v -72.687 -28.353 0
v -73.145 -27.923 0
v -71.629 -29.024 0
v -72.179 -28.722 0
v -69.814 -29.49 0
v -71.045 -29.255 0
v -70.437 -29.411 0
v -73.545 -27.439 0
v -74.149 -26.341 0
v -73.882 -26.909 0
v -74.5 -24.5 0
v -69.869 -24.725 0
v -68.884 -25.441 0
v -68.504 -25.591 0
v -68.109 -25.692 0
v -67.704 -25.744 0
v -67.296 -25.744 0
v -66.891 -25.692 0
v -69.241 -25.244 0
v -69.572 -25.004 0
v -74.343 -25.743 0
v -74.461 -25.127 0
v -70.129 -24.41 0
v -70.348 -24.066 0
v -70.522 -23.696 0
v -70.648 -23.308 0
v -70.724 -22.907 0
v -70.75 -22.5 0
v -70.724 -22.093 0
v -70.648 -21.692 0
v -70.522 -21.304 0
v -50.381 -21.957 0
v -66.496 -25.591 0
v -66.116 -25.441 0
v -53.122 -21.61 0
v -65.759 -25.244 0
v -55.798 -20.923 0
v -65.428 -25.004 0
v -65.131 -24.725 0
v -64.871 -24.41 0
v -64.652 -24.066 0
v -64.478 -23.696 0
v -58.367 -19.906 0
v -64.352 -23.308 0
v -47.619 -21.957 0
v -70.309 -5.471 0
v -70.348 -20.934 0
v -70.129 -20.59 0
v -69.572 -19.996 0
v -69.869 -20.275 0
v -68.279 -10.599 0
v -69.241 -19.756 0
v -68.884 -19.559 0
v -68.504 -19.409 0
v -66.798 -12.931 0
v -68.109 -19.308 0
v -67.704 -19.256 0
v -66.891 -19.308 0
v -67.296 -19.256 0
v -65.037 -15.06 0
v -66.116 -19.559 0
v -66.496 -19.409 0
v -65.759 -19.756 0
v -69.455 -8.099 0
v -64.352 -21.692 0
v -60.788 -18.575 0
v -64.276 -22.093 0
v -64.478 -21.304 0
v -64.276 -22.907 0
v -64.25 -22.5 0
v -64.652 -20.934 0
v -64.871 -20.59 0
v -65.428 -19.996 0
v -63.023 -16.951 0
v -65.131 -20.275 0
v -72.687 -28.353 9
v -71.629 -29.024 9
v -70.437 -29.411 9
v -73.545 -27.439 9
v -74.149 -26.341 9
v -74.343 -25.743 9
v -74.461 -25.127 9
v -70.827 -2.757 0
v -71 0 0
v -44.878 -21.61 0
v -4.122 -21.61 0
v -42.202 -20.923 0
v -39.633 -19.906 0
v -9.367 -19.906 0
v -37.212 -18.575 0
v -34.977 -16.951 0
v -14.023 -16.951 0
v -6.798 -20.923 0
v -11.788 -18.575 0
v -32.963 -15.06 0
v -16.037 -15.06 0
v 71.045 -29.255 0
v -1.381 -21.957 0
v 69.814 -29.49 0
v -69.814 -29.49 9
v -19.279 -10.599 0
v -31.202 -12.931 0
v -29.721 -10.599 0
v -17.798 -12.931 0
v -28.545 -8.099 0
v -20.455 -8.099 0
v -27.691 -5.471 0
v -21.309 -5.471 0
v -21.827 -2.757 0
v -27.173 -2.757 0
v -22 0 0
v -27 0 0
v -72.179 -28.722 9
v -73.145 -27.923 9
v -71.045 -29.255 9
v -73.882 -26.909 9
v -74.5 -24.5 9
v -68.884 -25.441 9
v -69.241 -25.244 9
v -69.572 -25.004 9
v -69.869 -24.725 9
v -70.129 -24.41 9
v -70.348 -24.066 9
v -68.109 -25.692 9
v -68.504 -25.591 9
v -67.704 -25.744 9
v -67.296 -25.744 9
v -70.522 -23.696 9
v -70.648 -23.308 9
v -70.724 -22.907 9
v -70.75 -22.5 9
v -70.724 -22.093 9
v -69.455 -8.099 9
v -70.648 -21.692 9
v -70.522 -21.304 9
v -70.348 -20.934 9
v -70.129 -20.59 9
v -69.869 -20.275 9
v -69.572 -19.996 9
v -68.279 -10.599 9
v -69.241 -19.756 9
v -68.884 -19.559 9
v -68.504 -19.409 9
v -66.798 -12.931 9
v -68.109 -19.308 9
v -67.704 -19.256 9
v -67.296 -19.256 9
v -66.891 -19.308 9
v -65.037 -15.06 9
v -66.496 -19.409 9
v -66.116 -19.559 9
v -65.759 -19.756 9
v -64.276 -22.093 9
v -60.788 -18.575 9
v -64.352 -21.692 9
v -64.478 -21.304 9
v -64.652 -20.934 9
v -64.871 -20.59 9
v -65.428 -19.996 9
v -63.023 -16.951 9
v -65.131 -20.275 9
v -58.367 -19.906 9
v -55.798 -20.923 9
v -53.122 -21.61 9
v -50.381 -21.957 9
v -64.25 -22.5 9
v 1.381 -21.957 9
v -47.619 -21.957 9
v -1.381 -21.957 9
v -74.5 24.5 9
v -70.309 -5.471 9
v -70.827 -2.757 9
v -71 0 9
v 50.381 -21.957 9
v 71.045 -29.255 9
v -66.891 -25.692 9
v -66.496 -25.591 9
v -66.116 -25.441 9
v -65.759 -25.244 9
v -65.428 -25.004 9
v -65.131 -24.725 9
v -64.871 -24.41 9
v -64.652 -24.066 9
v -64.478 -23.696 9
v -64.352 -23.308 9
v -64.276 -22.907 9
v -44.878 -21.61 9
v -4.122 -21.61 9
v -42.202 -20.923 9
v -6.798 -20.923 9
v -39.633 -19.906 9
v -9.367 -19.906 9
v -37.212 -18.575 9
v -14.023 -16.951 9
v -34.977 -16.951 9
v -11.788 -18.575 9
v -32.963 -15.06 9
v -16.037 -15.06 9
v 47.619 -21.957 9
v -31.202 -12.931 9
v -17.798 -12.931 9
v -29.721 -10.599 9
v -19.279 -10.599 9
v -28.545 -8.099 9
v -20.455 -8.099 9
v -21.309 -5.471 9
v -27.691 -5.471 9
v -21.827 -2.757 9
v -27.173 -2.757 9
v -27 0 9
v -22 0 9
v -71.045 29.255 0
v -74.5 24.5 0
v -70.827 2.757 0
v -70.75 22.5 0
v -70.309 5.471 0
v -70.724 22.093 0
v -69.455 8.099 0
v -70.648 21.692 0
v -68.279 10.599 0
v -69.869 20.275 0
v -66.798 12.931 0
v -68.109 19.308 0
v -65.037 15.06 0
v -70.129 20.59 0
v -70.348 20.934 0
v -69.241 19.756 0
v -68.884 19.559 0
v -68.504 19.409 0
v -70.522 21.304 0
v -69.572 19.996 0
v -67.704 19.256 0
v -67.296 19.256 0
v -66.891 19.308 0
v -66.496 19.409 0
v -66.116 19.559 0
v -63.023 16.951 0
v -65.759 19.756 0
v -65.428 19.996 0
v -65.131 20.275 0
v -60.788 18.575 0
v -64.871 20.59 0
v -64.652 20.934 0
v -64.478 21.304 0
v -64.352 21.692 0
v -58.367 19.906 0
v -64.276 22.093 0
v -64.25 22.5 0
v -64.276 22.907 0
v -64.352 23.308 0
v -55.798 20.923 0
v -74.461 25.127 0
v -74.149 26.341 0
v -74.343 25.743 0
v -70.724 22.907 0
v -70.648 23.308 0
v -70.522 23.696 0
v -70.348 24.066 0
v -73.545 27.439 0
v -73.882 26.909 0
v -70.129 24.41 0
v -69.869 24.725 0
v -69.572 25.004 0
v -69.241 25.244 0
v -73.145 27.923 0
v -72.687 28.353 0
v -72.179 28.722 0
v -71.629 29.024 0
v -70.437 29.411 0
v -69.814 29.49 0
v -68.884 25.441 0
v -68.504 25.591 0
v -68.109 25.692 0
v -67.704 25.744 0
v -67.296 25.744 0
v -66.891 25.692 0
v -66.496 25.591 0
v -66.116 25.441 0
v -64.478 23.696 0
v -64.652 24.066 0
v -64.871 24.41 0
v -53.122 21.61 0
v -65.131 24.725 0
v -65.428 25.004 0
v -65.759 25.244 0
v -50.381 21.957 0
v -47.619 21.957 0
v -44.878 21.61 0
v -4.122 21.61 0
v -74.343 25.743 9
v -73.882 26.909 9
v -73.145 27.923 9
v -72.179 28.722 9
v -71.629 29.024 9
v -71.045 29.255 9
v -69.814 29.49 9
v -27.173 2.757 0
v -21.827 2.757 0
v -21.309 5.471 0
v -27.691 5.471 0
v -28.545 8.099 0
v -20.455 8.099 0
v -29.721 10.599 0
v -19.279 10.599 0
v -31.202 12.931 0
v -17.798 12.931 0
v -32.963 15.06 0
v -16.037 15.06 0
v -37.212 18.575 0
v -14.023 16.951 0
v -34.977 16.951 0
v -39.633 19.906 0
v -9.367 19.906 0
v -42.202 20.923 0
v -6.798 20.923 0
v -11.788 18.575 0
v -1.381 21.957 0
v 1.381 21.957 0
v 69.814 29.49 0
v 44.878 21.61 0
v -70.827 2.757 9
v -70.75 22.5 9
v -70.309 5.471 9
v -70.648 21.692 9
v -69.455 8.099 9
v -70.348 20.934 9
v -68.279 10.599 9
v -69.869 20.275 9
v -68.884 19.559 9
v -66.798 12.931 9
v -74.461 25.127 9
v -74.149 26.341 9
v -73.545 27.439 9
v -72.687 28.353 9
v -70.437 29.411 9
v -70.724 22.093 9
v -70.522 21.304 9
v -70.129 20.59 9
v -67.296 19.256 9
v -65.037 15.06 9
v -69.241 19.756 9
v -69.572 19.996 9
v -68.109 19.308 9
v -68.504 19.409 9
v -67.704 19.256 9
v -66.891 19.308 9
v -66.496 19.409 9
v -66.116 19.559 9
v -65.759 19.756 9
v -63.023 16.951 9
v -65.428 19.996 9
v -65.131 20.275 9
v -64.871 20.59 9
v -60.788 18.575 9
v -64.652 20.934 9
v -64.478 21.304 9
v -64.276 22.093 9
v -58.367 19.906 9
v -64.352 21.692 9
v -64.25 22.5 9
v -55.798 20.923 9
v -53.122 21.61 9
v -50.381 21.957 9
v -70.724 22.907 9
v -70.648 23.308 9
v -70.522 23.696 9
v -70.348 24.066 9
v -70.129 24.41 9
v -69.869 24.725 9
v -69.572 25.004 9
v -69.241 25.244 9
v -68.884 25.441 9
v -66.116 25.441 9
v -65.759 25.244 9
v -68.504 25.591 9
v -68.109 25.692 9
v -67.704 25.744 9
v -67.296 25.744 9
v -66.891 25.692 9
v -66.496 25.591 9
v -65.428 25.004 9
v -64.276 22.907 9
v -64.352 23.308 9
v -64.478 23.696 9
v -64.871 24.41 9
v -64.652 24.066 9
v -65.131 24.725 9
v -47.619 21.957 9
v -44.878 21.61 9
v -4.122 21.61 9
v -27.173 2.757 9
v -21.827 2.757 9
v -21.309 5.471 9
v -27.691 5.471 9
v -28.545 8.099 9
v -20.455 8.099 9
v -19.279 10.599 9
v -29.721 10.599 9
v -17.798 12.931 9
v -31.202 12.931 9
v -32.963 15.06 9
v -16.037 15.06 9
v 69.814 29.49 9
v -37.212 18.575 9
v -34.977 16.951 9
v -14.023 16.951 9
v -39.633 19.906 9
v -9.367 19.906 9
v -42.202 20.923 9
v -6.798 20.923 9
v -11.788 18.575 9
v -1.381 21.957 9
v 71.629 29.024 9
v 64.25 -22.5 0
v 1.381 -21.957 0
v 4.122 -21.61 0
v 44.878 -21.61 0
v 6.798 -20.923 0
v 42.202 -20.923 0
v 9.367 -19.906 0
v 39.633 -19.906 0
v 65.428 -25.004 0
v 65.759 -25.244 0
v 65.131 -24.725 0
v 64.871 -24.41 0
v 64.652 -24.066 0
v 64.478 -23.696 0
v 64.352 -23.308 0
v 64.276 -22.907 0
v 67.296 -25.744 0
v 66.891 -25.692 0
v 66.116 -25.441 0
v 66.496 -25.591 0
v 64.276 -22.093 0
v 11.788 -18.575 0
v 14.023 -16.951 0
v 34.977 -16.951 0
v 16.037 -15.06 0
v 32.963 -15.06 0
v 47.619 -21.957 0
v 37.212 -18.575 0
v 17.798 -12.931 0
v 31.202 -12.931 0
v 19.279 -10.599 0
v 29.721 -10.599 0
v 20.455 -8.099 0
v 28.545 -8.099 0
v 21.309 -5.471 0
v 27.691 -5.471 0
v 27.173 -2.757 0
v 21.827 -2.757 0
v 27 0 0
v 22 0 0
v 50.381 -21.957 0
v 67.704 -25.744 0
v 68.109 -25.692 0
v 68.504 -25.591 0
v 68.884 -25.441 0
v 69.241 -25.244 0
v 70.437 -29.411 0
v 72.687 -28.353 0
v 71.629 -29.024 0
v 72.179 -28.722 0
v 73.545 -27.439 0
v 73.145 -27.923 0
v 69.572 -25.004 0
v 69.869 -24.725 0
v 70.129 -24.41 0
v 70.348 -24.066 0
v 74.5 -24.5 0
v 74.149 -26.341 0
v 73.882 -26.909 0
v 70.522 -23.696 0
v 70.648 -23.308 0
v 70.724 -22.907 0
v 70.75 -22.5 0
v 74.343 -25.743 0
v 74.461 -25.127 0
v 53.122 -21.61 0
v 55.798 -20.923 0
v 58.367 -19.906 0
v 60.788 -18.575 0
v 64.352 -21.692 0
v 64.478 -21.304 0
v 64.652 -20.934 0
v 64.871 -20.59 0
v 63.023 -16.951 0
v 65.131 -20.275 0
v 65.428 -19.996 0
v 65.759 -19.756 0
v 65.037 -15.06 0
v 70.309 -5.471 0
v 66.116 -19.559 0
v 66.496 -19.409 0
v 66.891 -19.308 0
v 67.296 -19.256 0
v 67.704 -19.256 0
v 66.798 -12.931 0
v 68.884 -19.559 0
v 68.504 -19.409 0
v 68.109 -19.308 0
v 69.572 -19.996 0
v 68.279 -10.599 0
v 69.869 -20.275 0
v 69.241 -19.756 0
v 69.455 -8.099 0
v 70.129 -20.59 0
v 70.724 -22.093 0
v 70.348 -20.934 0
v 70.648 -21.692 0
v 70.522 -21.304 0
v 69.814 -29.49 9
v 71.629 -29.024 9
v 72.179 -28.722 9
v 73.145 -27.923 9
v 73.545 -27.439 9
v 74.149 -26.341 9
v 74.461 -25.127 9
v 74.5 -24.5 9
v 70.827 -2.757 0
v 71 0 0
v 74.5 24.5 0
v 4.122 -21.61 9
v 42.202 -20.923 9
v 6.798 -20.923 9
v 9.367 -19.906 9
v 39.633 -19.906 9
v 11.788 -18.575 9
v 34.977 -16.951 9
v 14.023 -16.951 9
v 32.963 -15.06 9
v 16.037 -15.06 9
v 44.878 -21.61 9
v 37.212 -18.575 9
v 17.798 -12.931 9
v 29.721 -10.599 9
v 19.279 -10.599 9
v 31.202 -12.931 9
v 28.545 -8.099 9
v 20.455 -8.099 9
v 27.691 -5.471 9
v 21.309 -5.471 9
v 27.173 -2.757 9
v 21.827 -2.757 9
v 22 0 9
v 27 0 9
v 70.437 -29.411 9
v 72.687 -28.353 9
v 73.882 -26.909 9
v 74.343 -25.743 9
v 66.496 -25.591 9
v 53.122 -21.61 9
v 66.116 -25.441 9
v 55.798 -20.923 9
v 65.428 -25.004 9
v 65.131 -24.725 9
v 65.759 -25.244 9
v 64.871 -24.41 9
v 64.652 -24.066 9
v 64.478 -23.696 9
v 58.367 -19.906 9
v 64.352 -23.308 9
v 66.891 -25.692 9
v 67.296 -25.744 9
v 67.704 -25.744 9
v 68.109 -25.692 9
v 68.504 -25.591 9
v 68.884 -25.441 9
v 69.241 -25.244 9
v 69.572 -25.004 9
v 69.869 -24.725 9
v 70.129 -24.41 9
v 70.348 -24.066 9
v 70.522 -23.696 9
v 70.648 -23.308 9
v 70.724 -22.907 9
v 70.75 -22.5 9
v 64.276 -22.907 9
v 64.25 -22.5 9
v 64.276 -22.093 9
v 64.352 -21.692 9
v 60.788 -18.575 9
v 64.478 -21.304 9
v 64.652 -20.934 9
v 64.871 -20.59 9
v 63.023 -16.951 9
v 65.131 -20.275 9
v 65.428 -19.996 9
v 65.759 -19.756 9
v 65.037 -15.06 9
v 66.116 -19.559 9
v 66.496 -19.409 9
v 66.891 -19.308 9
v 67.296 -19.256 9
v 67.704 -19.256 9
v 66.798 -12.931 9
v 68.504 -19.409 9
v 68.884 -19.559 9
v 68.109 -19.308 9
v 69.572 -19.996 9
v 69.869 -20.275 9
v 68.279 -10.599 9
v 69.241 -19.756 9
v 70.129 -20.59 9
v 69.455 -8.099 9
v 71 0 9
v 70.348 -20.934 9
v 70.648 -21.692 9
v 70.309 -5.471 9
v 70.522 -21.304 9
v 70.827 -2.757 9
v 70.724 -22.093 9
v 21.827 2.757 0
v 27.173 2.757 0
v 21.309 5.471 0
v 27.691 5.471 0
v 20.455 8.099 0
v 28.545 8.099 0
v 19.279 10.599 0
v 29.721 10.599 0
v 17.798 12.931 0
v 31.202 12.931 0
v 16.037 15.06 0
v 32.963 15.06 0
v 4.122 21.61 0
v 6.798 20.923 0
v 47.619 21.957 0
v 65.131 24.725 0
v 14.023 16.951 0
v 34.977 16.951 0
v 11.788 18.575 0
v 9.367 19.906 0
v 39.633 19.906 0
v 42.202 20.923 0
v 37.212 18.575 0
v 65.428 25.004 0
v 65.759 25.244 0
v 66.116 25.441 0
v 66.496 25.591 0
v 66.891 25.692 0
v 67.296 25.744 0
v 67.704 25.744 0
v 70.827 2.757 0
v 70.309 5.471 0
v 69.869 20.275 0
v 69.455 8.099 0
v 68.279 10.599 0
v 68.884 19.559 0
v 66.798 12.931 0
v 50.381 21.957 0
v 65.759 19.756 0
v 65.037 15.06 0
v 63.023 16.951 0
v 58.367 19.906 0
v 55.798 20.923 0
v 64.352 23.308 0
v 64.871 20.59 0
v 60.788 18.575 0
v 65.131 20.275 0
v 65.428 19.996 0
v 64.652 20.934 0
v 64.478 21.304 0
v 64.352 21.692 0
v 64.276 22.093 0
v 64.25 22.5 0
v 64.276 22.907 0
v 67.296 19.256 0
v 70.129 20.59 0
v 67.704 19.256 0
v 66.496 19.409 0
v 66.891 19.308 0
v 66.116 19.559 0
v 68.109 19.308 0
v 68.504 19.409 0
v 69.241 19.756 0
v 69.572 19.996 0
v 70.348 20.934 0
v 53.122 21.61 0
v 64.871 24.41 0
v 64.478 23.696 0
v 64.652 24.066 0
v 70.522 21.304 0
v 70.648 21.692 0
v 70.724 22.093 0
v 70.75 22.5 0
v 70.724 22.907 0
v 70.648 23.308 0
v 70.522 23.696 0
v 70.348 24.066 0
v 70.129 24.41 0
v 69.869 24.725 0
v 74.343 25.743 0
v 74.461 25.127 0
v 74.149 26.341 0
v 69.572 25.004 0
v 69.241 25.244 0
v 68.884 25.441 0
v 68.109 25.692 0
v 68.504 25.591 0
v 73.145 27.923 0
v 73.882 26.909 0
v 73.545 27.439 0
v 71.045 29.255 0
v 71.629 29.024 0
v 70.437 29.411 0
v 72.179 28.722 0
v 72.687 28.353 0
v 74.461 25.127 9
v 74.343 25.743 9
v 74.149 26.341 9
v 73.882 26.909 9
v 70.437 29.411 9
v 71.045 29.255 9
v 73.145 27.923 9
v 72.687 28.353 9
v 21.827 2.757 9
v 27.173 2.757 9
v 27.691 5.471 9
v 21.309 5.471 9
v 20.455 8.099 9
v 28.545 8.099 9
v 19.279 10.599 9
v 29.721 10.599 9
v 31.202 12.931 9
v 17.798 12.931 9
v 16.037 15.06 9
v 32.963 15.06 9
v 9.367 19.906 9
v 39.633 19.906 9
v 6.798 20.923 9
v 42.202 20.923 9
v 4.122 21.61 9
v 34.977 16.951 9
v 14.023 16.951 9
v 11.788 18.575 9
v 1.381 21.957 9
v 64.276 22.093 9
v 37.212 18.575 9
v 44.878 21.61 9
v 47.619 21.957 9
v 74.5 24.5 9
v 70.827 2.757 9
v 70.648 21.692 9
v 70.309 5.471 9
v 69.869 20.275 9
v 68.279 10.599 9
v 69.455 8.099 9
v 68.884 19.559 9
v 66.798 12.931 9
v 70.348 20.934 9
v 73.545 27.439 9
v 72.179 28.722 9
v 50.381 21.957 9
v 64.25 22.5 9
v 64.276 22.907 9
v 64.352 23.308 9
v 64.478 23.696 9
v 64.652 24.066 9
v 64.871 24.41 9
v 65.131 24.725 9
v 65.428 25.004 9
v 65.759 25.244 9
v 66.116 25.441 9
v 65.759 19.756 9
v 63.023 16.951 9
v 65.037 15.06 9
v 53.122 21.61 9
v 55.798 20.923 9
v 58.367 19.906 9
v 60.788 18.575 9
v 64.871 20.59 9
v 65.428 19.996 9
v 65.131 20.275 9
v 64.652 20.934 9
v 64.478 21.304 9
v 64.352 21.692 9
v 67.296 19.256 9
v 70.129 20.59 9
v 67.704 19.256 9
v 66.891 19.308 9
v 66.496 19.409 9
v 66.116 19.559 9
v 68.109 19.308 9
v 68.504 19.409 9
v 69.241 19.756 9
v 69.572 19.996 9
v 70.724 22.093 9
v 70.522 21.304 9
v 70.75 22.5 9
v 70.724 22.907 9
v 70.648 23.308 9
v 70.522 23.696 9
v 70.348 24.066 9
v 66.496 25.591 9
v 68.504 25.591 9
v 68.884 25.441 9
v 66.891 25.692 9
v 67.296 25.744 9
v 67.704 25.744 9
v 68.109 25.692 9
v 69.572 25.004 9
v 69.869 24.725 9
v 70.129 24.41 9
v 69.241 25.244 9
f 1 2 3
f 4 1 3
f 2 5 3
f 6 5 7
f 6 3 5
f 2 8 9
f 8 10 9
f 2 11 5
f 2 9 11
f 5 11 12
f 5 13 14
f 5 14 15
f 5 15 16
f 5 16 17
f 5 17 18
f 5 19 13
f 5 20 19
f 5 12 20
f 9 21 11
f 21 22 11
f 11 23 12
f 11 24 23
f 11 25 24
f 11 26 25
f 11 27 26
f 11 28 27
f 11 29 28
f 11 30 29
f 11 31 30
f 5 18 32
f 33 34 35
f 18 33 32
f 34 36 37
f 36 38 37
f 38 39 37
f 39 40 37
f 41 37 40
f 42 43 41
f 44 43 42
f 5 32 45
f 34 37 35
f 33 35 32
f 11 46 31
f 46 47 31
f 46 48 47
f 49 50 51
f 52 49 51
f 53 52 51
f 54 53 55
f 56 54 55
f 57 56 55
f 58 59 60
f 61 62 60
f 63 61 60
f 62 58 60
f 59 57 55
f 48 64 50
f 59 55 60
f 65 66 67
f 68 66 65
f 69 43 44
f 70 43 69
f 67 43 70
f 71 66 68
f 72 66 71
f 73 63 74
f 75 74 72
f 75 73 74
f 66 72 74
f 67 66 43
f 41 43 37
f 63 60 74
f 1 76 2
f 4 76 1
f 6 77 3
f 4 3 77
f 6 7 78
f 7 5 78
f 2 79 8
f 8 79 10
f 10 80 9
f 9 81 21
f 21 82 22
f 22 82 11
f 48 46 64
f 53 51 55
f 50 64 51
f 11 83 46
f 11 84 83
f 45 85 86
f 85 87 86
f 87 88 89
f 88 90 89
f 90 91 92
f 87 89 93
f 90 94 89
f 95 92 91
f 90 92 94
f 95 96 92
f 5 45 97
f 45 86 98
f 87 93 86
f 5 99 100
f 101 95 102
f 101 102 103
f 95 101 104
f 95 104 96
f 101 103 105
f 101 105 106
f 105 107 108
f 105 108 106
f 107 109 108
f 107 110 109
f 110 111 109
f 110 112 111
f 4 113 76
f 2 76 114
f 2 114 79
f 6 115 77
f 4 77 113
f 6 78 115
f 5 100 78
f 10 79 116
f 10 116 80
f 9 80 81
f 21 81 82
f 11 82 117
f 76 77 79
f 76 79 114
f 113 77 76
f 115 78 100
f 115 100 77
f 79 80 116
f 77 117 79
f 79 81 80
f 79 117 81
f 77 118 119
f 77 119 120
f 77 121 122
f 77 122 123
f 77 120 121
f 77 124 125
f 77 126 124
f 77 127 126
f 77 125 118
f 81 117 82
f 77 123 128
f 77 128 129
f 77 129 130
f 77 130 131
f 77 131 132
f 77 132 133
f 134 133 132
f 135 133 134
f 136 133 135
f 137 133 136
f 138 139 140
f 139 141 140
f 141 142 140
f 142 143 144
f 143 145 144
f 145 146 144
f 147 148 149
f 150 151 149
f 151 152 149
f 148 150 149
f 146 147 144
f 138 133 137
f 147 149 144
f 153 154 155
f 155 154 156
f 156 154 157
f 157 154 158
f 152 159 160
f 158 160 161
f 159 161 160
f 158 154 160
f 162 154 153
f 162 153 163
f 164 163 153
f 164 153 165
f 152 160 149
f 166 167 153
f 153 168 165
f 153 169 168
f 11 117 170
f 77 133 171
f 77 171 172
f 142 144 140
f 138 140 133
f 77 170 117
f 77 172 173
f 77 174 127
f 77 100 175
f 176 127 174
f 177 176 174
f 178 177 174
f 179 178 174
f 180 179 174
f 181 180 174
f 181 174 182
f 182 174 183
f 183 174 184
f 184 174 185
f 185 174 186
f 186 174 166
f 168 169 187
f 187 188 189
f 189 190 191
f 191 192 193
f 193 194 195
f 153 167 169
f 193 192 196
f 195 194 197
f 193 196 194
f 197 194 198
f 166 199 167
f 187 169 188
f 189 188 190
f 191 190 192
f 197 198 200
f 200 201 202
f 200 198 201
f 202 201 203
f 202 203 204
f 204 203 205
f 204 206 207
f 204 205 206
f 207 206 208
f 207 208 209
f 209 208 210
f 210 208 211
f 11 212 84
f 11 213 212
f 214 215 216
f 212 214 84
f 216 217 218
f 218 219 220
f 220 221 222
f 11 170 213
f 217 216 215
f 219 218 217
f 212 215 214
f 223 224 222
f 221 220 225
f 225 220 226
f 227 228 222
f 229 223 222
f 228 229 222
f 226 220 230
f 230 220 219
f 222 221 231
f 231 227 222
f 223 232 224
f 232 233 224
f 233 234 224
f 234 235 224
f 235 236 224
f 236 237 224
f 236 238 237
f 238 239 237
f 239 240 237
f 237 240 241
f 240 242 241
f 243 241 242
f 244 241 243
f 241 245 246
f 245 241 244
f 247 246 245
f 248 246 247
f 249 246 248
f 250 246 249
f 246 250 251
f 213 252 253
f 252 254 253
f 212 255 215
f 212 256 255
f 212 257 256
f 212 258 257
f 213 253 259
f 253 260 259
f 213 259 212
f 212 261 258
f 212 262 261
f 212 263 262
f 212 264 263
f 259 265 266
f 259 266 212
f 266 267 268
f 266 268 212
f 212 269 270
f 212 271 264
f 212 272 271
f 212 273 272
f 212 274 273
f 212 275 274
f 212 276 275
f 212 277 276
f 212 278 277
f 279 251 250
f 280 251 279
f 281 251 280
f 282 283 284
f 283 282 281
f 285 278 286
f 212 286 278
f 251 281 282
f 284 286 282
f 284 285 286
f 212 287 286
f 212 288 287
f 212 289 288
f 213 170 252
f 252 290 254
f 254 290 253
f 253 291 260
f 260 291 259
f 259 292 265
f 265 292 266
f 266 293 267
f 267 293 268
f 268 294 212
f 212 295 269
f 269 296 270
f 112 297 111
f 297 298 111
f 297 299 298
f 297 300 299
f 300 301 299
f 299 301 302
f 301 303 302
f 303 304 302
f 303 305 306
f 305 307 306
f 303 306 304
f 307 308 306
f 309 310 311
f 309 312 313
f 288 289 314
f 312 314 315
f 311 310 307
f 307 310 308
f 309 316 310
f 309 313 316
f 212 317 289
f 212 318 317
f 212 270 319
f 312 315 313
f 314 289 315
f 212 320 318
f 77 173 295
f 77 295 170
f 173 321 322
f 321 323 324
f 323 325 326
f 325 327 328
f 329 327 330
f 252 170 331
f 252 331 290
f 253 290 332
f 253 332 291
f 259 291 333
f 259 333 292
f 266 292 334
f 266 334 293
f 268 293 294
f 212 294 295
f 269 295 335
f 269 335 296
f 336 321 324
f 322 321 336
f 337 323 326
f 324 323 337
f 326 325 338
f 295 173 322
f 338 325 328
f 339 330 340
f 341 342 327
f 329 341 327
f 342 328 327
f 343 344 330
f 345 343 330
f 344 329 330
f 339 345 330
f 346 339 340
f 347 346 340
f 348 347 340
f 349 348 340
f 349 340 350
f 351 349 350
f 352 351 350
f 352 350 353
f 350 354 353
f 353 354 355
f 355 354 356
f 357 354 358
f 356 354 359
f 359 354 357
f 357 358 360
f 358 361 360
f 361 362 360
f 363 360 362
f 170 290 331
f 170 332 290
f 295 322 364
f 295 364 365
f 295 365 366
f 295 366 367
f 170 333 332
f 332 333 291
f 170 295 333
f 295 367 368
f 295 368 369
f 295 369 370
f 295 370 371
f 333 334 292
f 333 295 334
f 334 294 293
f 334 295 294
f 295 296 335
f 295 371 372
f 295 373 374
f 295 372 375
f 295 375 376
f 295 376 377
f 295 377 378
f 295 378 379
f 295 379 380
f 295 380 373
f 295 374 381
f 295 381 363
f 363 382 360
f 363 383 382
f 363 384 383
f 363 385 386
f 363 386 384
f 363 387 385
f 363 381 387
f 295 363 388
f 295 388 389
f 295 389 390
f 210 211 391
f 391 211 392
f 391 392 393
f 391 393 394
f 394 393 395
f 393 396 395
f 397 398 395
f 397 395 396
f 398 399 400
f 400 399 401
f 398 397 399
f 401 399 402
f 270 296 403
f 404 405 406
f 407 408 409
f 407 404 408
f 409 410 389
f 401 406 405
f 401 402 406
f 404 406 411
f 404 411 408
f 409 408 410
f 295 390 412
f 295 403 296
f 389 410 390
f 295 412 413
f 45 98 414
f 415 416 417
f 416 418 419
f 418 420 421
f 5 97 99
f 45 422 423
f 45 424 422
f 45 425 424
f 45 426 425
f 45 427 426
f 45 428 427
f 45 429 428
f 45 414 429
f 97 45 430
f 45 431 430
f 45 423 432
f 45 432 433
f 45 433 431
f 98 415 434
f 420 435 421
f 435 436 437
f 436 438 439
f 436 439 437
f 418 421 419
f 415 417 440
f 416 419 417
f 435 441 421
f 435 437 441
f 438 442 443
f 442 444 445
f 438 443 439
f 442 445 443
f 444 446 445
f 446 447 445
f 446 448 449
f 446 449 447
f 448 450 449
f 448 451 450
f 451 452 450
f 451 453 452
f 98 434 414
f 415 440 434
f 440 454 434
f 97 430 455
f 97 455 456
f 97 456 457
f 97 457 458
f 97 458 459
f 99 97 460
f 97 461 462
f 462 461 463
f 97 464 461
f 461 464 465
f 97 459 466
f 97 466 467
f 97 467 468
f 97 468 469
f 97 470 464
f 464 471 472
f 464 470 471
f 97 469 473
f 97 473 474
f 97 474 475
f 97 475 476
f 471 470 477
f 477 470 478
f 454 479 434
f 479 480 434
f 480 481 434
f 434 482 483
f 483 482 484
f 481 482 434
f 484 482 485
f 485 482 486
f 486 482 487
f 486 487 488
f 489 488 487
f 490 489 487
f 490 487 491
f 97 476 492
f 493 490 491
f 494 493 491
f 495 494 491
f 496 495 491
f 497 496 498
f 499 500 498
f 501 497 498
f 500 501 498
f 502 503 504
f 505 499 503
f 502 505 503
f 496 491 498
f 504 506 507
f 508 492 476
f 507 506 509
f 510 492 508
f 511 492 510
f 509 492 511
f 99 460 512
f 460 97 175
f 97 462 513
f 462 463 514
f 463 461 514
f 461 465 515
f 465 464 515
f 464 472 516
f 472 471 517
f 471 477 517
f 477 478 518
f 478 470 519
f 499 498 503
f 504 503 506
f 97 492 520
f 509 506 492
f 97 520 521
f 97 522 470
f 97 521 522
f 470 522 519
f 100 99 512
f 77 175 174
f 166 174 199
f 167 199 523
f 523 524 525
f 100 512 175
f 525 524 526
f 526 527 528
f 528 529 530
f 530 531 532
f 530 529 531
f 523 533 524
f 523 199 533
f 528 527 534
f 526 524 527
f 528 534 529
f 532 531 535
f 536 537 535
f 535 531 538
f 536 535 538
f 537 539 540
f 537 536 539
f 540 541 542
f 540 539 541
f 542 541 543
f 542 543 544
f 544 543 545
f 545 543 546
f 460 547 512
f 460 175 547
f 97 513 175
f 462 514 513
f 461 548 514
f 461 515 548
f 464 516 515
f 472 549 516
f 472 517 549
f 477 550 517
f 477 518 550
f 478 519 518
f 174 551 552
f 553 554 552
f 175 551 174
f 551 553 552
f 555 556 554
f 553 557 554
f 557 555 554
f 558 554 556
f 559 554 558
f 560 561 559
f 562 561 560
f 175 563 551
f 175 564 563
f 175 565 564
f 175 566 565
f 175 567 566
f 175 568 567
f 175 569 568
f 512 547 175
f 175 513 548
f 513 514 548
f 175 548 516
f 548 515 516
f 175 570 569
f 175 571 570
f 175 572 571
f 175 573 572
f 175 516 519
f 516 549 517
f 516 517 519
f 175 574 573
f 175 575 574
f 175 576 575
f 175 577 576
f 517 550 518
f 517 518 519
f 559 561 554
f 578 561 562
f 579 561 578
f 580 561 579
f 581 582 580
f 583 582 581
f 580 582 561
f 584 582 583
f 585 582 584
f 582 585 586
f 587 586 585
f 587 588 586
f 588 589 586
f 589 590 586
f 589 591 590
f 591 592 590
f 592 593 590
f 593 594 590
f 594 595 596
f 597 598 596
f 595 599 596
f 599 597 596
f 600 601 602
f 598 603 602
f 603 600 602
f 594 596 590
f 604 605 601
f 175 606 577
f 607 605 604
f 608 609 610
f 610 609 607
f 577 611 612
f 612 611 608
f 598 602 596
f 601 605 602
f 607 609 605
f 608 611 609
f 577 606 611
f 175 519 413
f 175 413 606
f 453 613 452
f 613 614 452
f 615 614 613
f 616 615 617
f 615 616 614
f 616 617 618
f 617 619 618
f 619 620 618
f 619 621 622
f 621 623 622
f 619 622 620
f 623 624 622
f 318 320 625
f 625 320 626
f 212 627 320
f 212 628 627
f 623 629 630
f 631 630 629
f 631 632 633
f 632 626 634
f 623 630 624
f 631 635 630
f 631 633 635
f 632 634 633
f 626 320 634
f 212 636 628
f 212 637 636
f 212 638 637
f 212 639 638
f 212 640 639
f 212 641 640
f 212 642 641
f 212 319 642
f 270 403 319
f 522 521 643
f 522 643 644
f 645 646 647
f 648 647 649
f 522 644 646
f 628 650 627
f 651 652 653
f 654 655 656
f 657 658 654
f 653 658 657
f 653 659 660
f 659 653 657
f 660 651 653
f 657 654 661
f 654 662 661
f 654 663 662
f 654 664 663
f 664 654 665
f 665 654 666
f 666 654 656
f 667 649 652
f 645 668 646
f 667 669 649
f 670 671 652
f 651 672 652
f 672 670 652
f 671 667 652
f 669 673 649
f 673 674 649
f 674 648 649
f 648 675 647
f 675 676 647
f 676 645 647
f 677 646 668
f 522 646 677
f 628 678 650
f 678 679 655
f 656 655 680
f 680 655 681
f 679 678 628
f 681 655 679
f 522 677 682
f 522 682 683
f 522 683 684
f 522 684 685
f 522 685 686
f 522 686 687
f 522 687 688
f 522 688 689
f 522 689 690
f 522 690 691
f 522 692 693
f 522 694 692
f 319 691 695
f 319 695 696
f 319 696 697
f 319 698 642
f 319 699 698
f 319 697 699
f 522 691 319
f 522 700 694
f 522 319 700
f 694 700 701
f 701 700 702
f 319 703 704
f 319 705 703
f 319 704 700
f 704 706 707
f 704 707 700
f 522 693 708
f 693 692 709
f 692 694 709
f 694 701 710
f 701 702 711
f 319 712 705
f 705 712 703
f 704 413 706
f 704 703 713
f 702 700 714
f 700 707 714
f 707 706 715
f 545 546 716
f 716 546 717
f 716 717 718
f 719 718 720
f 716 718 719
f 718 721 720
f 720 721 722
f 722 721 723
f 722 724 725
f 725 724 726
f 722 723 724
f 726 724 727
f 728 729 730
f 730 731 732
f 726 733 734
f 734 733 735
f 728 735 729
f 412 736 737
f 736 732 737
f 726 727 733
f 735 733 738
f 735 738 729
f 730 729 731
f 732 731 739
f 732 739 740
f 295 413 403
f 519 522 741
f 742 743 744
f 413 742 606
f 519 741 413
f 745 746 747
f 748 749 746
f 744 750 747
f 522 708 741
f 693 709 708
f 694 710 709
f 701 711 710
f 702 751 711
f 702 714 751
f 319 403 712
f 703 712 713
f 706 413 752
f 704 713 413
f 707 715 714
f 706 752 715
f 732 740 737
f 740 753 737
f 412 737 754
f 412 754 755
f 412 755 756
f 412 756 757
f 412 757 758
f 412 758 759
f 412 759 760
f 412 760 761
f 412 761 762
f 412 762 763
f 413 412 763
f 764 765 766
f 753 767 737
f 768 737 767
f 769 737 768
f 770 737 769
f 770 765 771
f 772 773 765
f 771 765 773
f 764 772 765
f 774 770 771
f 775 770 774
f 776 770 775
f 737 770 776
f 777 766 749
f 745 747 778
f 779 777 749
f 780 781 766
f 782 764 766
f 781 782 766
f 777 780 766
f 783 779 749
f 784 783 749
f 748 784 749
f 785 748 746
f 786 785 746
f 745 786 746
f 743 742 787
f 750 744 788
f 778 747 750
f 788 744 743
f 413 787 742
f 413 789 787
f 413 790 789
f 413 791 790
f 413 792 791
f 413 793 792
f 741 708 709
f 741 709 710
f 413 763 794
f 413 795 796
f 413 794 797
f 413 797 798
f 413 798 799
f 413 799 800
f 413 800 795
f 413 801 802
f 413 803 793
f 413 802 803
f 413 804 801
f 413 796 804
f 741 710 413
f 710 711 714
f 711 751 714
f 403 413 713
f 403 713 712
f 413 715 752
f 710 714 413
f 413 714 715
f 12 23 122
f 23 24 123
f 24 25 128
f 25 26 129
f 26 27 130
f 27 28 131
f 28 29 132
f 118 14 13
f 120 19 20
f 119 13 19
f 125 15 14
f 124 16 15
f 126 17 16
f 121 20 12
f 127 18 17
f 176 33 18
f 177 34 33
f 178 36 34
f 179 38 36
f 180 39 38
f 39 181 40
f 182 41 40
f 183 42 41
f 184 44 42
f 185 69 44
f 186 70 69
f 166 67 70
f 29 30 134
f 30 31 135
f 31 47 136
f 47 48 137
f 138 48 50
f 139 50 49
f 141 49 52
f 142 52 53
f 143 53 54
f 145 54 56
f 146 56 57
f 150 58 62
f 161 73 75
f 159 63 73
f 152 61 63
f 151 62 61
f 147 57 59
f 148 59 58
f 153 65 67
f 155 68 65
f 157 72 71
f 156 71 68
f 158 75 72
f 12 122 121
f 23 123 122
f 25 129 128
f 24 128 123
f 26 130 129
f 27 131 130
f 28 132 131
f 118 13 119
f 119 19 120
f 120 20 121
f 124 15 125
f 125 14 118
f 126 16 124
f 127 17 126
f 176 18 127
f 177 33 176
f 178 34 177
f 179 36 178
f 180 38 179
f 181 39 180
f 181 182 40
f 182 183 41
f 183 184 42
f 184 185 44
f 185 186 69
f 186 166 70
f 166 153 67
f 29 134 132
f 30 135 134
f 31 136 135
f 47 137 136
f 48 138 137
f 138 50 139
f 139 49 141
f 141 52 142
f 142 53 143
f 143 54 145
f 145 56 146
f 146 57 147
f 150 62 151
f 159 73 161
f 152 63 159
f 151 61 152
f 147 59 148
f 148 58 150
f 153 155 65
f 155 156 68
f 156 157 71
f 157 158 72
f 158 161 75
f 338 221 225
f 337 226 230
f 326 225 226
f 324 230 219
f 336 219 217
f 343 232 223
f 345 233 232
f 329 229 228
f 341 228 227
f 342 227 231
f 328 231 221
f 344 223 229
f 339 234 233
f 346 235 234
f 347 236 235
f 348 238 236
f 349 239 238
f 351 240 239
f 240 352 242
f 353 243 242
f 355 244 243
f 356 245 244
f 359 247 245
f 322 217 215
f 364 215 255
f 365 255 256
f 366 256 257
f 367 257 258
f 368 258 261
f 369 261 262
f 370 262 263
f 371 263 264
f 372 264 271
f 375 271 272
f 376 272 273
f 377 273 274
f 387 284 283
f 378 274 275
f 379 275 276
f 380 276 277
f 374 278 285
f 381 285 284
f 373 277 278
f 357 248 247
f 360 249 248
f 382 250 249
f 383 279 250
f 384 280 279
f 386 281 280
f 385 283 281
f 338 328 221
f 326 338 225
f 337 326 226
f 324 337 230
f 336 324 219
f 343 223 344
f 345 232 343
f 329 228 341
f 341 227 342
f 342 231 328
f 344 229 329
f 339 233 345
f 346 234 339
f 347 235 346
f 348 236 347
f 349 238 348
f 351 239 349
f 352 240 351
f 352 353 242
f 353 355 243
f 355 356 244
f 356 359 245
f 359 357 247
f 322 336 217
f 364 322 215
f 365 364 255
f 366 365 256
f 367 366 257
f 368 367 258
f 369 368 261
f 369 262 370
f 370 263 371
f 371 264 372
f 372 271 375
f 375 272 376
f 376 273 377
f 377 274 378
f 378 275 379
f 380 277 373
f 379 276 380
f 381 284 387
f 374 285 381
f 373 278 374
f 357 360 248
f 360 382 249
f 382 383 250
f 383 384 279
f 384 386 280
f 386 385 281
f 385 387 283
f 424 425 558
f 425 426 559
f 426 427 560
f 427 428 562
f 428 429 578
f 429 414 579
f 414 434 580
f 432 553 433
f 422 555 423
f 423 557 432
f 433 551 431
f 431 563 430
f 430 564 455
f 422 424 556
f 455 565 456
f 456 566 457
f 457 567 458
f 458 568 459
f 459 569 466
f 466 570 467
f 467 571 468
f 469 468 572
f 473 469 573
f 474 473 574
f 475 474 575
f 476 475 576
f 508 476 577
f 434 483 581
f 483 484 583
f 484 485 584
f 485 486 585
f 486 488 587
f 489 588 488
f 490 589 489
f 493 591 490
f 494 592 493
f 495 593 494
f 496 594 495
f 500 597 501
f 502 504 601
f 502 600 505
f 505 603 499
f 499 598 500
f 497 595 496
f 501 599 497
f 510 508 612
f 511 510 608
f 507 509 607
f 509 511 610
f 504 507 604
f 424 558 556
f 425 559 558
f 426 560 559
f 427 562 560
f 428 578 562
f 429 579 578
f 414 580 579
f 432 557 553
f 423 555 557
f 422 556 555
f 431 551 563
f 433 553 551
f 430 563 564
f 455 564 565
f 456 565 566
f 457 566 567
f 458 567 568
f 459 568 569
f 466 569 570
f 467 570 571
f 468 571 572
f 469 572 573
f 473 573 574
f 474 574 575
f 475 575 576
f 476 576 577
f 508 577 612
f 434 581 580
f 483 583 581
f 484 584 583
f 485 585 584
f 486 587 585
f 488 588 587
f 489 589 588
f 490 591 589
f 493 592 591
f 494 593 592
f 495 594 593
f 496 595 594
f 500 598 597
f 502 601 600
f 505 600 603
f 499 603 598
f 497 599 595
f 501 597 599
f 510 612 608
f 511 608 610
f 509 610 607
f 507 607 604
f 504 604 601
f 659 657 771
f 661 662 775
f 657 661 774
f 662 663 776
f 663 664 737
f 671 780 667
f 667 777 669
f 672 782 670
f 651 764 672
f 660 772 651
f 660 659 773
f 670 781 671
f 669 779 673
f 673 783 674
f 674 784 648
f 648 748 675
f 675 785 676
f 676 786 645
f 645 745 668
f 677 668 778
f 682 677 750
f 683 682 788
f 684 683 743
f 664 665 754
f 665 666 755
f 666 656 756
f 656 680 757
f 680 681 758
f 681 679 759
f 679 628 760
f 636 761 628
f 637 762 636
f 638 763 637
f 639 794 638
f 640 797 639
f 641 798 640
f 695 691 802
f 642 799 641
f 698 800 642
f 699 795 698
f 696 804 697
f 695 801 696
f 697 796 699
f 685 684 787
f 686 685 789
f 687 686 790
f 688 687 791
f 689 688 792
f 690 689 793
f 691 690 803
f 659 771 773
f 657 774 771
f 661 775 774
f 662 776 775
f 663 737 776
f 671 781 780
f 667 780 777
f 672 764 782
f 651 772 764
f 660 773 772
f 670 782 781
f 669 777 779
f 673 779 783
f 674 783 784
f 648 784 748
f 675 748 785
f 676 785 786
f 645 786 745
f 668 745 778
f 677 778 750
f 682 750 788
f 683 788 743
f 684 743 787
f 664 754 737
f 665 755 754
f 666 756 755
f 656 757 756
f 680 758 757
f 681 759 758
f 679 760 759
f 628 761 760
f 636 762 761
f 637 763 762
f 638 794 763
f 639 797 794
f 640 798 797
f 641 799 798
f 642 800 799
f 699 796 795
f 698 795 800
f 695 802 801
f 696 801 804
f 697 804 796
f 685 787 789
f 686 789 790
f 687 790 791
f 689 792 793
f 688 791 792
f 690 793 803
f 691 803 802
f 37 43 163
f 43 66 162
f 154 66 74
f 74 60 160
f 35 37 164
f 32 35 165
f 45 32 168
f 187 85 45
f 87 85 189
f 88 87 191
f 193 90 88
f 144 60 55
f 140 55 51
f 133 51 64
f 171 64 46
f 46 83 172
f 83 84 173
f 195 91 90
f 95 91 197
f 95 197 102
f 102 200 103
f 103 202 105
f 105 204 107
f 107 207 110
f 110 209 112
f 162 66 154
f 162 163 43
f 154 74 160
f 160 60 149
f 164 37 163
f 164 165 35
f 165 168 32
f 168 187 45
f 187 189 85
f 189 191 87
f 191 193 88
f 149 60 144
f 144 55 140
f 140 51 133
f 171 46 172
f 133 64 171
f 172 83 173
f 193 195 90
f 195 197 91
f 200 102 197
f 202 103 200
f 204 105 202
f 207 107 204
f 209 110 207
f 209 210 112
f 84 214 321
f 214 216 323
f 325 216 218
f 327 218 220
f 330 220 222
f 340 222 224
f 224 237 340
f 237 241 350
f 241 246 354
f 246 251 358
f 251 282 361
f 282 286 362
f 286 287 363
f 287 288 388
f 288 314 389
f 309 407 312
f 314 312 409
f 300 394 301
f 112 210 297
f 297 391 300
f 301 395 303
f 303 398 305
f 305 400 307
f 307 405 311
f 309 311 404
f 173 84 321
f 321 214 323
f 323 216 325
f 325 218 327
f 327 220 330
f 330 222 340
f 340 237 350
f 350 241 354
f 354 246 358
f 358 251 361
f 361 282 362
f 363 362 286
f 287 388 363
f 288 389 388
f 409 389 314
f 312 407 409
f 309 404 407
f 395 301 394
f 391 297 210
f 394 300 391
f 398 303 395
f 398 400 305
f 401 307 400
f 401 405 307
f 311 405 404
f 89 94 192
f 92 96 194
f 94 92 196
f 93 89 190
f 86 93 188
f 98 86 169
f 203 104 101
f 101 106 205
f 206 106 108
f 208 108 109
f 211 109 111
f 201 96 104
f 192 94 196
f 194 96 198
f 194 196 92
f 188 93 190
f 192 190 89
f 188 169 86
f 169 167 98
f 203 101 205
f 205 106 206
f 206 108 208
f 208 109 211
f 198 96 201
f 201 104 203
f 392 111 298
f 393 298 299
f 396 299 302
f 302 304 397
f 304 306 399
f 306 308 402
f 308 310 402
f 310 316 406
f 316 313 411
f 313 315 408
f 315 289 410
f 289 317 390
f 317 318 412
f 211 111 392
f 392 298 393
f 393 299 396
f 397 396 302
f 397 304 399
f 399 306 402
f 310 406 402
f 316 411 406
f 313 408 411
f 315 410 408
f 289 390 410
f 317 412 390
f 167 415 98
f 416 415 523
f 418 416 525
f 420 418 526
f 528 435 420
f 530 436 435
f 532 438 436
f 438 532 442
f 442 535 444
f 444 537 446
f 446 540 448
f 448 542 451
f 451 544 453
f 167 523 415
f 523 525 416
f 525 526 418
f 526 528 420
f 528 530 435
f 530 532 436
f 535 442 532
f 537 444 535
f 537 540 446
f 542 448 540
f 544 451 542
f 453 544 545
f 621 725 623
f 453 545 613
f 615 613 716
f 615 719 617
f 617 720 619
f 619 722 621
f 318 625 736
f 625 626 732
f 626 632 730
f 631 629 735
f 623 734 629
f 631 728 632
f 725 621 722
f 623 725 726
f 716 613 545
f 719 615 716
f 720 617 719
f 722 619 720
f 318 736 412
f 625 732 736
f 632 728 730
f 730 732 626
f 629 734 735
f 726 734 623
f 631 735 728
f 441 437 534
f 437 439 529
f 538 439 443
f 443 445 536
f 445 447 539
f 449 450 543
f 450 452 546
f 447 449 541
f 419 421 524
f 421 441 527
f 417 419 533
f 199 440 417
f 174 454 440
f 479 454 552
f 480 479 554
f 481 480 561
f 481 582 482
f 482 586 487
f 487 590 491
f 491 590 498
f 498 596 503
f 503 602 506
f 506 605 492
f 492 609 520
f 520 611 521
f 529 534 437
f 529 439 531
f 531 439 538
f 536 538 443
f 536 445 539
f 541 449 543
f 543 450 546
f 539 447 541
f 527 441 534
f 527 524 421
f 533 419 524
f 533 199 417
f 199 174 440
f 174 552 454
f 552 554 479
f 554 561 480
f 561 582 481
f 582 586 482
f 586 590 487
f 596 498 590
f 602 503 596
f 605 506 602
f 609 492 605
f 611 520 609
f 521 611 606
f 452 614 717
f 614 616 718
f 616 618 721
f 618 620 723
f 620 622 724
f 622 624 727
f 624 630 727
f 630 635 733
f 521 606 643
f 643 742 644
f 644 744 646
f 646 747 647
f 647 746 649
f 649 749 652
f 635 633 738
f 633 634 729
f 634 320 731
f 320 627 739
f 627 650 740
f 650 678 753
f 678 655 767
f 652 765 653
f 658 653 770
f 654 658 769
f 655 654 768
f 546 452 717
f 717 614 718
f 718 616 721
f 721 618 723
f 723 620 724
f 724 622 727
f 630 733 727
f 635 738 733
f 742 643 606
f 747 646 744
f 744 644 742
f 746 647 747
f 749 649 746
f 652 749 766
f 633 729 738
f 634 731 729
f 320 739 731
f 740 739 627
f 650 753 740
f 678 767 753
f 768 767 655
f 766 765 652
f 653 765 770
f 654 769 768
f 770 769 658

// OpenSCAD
$fn = 50;

difference() {
	union() {
		hull() {
			translate(v = [-69.5, 24.5, 0]) {
				cylinder(h = 9, r = 5);
			}
			translate(v = [69.5, 24.5, 0]) {
				cylinder(h = 9, r = 5);
			}
			translate(v = [-69.5, -24.5, 0]) {
				cylinder(h = 9, r = 5);
			}
			translate(v = [69.5, -24.5, 0]) {
				cylinder(h = 9, r = 5);
			}
		}
	}
	union() {
		translate(v = [-67.5, -22.5, -100.0]) {
			cylinder(h = 200, r = 3.25);
		}
		translate(v = [-67.5, 22.5, -100.0]) {
			cylinder(h = 200, r = 3.25);
		}
		translate(v = [67.5, -22.5, -100.0]) {
			cylinder(h = 200, r = 3.25);
		}
		translate(v = [67.5, 22.5, -100.0]) {
			cylinder(h = 200, r = 3.25);
		}
		translate(v = [-67.5, -22.5, -100.0]) {
			cylinder(h = 200, r = 1.8);
		}
		translate(v = [-67.5, 22.5, -100.0]) {
			cylinder(h = 200, r = 1.8);
		}
		translate(v = [67.5, -22.5, -100.0]) {
			cylinder(h = 200, r = 1.8);
		}
		translate(v = [67.5, 22.5, -100.0]) {
			cylinder(h = 200, r = 1.8);
		}
		translate(v = [-49.0, 0, 0.0]) {
			cylinder(h = 9, r = 22.0);
		}
		cylinder(h = 9, r = 22.0);
		translate(v = [49.0, 0, 0.0]) {
			cylinder(h = 9, r = 22.0);
		}
	}
}
